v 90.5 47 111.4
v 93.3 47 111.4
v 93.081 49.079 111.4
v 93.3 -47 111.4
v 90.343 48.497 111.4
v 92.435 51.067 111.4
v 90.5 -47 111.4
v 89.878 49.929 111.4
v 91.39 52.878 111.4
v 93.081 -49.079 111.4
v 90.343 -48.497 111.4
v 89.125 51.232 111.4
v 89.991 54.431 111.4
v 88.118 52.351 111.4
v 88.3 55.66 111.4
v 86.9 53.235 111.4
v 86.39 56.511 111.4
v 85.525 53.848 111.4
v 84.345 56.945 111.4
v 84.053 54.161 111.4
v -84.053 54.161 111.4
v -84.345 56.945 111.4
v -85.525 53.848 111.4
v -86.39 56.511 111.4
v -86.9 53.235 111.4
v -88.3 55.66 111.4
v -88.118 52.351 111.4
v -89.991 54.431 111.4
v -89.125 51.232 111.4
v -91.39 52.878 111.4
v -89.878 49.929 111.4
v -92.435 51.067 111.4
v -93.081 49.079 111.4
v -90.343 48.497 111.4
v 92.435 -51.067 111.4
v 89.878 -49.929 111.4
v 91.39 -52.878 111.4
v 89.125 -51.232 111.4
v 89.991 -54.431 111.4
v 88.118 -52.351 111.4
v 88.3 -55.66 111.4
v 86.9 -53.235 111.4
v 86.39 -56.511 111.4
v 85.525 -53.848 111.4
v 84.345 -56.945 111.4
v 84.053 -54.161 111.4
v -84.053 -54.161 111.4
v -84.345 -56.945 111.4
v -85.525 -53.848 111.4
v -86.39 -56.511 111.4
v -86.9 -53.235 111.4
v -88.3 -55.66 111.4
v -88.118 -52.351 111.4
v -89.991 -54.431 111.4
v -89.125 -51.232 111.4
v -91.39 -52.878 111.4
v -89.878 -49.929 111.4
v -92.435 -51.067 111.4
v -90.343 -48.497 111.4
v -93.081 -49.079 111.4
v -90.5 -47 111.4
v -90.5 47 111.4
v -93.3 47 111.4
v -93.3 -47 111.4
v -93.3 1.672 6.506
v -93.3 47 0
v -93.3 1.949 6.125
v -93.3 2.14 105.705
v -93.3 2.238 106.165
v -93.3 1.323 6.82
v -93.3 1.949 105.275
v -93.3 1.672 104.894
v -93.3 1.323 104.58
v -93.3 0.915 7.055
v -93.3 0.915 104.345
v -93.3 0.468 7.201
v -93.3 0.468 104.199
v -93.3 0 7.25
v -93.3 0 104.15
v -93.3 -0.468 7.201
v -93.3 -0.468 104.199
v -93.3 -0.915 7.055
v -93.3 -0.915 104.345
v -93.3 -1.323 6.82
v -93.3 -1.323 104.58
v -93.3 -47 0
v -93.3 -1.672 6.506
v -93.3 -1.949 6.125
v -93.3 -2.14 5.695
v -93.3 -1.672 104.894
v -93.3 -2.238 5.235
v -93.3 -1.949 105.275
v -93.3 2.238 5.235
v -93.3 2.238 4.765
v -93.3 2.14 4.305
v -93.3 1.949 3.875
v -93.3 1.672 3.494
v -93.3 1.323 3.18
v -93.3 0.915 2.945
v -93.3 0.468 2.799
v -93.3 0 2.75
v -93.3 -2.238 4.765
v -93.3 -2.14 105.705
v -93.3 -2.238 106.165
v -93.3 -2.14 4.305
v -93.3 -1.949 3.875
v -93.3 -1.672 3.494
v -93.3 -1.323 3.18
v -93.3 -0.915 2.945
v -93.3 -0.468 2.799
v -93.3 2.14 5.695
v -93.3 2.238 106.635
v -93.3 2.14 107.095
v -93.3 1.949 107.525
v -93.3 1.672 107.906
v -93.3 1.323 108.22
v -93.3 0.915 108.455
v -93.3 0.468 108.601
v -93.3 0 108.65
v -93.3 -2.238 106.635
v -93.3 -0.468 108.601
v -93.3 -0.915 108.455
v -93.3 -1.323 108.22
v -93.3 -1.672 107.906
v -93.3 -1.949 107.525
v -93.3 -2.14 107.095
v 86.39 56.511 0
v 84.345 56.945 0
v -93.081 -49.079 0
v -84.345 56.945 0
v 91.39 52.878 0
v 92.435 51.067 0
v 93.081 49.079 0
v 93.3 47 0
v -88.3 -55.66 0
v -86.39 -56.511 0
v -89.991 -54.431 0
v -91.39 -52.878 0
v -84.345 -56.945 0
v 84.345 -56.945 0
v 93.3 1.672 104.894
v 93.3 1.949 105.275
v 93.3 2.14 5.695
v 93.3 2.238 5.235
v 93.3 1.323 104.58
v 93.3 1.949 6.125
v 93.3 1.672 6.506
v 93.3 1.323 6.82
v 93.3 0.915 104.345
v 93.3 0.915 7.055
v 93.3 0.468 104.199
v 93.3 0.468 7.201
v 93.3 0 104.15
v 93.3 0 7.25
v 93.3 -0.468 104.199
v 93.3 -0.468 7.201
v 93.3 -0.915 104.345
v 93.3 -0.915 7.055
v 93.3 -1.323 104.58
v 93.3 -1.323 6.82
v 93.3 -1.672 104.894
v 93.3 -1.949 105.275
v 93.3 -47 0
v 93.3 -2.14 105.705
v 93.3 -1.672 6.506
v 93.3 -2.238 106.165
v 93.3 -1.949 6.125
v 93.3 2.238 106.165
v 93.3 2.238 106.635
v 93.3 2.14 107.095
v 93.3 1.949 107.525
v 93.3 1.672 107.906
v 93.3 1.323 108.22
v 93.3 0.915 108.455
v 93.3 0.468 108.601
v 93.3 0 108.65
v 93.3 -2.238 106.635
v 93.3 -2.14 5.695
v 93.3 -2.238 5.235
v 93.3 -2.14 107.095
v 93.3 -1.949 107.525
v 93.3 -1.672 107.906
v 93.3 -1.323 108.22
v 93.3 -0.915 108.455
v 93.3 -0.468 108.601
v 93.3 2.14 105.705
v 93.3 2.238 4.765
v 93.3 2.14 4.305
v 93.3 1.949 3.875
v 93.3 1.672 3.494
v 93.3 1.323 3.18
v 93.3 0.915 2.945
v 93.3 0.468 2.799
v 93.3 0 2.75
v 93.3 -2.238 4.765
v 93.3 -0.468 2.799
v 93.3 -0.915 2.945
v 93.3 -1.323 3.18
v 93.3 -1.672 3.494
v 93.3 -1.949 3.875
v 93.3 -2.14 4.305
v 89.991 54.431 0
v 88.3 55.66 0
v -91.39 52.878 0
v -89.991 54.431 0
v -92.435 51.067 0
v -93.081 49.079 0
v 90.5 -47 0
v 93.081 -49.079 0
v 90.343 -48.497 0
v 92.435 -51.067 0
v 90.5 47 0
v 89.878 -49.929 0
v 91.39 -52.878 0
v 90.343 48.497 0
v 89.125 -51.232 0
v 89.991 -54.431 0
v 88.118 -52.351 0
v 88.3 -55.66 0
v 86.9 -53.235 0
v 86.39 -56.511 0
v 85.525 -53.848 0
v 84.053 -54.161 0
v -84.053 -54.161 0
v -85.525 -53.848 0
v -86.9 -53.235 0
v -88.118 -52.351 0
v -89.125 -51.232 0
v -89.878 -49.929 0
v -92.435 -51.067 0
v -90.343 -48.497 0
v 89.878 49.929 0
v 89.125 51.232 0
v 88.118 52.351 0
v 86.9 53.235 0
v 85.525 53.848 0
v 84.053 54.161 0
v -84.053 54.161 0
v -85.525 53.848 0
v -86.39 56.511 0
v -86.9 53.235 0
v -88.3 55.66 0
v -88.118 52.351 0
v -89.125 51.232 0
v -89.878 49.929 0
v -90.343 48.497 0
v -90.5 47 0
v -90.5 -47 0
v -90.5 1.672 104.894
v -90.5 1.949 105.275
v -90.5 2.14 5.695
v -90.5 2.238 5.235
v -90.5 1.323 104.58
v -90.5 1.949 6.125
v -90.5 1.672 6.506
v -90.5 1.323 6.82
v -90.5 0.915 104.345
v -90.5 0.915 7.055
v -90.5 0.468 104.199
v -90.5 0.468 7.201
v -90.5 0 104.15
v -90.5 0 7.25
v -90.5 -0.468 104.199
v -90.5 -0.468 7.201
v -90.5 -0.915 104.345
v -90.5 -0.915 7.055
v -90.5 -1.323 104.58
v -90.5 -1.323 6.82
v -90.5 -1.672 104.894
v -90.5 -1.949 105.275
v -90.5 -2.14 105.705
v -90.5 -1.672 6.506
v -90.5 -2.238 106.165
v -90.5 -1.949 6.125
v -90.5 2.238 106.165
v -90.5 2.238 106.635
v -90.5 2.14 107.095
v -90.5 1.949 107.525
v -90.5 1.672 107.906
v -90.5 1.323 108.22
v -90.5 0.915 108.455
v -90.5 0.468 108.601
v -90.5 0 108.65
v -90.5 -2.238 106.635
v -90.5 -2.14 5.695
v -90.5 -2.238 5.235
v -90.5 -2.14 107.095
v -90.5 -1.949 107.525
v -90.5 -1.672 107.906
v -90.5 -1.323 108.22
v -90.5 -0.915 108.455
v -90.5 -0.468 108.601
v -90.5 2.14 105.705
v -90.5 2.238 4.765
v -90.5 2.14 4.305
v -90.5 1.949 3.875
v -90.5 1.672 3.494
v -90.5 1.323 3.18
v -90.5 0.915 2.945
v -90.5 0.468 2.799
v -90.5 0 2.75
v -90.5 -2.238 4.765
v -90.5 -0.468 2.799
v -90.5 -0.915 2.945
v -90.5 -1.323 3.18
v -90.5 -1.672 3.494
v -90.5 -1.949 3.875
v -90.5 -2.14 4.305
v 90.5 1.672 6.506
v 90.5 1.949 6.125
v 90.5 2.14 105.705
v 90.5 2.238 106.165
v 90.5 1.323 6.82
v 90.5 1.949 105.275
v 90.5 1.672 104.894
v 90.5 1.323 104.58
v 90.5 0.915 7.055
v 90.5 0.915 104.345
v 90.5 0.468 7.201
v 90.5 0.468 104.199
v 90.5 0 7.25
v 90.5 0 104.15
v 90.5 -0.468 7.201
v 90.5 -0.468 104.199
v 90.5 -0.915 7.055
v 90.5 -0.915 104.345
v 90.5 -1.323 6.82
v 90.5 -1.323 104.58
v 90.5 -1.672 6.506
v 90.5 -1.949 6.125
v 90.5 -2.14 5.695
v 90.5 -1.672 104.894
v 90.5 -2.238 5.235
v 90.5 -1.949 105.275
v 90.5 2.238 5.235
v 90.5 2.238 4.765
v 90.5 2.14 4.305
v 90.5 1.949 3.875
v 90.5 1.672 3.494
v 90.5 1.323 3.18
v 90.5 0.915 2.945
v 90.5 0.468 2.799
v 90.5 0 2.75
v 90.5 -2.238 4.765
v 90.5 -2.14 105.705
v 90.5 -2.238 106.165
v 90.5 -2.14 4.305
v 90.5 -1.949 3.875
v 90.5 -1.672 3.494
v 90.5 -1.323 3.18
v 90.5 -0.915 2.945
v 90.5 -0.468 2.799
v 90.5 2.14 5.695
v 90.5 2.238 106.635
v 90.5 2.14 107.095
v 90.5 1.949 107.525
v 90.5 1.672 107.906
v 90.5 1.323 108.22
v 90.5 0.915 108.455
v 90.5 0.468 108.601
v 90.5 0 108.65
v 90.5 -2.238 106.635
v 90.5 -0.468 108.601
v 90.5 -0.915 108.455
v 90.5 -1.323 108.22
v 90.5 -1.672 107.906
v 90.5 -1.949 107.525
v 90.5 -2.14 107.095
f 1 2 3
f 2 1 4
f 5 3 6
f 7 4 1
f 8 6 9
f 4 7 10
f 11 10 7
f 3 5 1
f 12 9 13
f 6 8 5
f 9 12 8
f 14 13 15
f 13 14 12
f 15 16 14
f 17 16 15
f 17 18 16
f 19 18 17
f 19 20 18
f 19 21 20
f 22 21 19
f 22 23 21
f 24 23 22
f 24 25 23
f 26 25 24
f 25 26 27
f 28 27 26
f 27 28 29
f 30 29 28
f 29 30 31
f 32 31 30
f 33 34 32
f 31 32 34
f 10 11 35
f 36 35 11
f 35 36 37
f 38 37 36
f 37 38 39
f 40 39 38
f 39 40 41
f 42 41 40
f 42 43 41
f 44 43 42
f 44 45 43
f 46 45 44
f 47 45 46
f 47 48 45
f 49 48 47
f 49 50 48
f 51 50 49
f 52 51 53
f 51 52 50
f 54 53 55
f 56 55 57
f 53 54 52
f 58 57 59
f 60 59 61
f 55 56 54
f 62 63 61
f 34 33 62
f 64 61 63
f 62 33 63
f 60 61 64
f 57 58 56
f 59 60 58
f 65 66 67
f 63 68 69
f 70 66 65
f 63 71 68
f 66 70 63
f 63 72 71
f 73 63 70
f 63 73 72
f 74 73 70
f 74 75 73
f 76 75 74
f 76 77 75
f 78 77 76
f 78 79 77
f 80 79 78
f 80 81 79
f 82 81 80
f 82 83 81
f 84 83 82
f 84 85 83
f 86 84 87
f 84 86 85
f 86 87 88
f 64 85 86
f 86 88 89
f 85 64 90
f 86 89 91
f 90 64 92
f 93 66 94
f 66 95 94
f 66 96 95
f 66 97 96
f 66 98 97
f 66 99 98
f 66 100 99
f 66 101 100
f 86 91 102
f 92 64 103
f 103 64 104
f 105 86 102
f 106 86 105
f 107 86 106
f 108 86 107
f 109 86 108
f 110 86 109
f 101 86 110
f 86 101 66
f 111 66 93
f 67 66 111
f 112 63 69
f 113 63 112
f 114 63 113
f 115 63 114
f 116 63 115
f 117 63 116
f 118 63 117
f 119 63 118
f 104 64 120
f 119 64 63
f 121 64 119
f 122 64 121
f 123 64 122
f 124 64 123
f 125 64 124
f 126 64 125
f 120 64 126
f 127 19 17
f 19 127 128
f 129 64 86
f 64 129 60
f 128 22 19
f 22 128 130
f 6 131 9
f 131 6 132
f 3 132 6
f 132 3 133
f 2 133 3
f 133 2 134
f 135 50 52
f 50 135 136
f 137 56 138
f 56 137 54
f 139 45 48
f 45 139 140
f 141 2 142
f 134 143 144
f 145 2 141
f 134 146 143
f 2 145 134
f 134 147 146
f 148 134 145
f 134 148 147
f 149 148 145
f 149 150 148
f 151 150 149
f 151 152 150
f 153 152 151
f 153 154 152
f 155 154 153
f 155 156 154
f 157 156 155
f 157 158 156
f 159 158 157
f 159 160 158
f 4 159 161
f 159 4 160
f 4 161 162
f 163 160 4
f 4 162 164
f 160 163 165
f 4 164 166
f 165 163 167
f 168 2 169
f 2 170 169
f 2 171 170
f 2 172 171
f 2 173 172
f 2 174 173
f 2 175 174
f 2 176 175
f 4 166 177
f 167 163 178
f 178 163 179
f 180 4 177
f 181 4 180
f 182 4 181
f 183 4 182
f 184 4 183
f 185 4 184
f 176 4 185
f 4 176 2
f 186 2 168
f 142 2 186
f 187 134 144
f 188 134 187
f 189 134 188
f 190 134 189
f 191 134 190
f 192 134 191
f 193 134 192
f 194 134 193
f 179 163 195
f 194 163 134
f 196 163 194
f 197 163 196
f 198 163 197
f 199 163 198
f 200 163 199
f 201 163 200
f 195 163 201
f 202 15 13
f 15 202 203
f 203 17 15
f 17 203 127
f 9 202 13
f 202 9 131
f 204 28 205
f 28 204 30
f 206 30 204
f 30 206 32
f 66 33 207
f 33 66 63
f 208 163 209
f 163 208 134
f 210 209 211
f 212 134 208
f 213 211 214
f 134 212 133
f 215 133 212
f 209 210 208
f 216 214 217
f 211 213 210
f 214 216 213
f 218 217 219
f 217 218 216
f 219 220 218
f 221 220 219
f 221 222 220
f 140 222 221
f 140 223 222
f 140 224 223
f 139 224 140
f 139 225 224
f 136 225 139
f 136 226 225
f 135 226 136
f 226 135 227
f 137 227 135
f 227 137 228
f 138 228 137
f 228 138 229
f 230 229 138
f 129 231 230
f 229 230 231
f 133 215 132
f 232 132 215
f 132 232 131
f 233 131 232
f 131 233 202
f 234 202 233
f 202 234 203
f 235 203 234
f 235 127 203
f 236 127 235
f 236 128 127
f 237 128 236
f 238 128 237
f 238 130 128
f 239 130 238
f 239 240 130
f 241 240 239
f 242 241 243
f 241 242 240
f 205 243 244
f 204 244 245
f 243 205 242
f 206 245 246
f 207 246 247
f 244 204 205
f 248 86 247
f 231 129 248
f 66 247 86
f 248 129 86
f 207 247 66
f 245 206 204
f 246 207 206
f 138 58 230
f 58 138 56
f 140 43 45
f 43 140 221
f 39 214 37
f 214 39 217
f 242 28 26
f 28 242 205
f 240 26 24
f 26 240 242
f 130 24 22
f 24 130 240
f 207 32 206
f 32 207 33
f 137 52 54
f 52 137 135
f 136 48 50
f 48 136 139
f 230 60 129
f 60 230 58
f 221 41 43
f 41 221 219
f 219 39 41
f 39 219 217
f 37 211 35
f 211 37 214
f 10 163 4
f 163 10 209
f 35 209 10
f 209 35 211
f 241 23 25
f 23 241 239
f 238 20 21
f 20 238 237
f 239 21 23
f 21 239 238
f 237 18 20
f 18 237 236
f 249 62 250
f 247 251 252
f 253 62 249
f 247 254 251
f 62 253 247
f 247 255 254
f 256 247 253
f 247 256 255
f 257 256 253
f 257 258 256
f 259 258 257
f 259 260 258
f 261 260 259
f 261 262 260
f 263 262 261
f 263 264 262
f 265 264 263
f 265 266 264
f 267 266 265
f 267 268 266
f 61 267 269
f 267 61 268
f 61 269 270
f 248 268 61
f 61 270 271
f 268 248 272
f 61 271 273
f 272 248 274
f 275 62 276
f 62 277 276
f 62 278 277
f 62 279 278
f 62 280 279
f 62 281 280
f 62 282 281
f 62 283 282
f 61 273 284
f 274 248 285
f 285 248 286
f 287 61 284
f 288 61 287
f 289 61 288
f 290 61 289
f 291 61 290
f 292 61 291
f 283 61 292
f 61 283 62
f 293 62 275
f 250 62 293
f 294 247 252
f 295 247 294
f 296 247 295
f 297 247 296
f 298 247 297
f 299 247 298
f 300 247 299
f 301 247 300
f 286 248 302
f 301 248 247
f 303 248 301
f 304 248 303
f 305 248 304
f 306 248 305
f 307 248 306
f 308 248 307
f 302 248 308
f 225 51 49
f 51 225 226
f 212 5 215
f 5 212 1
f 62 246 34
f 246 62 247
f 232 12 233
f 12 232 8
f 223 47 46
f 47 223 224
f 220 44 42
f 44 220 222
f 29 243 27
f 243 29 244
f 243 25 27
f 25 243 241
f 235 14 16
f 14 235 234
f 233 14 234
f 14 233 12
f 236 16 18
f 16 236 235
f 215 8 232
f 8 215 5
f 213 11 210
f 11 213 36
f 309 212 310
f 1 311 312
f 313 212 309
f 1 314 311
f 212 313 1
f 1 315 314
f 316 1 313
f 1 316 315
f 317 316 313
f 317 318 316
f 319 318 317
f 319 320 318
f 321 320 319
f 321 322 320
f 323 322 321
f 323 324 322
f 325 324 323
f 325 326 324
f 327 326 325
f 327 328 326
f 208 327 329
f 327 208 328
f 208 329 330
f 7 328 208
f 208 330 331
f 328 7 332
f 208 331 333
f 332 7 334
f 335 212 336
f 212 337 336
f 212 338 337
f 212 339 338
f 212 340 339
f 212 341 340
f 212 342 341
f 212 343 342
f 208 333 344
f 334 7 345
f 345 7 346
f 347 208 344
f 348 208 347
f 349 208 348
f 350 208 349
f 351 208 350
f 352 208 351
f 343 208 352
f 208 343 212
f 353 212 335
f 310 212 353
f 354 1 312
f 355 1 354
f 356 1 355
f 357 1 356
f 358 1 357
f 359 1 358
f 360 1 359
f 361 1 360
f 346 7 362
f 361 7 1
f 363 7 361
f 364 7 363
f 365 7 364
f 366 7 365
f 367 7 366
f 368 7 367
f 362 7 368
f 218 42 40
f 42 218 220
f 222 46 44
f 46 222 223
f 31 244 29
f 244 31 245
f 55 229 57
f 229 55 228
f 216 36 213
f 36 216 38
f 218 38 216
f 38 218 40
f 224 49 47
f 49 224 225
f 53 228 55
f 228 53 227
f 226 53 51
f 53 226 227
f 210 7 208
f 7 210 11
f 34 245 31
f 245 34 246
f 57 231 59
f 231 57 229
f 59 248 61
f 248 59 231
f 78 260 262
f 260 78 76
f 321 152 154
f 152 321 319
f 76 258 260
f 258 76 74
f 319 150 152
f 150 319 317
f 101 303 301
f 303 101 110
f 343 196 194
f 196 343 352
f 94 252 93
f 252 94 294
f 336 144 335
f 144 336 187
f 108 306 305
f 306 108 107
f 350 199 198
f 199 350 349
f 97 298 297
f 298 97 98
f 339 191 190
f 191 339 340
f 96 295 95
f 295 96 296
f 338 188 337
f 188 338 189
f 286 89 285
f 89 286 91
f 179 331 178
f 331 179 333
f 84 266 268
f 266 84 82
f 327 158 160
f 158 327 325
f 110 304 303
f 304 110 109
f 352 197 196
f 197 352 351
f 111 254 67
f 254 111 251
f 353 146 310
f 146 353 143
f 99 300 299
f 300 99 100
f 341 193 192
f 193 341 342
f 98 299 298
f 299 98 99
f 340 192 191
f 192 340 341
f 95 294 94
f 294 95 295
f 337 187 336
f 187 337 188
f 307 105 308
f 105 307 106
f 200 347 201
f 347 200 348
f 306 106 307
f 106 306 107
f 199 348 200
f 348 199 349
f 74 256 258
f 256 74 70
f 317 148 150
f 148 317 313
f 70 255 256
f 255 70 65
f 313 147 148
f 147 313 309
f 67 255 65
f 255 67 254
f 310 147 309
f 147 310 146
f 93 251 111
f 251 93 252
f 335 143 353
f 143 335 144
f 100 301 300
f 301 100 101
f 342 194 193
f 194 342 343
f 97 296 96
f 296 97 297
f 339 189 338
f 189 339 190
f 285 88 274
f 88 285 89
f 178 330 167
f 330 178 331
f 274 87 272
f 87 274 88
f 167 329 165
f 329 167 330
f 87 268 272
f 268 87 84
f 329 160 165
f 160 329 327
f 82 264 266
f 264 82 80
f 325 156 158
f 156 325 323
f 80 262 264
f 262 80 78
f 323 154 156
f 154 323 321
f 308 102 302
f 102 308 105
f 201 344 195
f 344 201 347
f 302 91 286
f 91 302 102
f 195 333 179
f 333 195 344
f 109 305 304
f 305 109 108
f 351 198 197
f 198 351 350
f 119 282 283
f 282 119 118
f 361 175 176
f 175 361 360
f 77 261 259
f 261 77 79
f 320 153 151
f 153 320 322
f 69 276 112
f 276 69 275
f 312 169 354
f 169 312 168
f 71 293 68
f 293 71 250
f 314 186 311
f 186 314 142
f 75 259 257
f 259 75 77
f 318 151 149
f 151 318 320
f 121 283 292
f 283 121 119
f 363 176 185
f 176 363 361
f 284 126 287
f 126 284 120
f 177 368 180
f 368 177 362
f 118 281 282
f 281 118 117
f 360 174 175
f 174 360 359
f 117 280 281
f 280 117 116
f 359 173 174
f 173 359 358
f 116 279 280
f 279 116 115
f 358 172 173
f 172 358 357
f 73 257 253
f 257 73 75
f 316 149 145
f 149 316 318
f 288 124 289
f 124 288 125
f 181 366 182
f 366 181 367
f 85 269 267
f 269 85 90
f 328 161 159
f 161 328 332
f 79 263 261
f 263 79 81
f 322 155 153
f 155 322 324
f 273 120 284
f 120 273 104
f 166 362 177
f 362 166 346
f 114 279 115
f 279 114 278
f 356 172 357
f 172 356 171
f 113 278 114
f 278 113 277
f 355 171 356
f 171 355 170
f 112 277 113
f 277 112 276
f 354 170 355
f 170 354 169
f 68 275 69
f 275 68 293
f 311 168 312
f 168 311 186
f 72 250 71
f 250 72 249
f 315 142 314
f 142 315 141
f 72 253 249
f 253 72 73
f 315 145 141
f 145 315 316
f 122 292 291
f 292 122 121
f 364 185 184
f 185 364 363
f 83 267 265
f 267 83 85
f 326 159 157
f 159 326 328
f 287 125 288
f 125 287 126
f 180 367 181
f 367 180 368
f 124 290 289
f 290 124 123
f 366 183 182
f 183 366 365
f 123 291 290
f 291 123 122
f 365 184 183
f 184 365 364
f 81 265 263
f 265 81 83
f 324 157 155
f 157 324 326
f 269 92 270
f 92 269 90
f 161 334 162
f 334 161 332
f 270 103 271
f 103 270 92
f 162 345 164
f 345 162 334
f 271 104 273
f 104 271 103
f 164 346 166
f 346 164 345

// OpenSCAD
// file: DMM_Front_Block.scad
include <BoxCommon.scad>;
$fs=.01;
// This is going to look upside down because of
// coordinate system for the board is from the front.
// Whereas this view is from the back. Its all
// flipped on the x axis.


BlockSZ=[10,20,6+9]; //  Of the board holders
Front_Shift=[0,-CPU_Board_Loc.y-4,0];  // Center of DMM board 
DMM_HolderSZ=[100,23,6+9];

// Locate the clamp elements:
DMM_ClampScrewOffset=(DMM_HolderSZ.x+DMM_BOARD_X)/4;
ClampHole=5;

// Use these modules with the same translate parameters
module DMM_Front_U()
{  

    
   translate([5,-BlockSZ.y/2,BlockSZ.z/2]) cube(BlockSZ,center=true);
   translate([-25,-BlockSZ.y/2,BlockSZ.z/2]) cube(BlockSZ,center=true);
   
   translate([0,-7,DMM_HolderSZ.z/2] + Front_Shift) cube(DMM_HolderSZ,center=true);
}
module DMM_Front_D()
{
    translate(Front_Shift)
    {
       for (bl=boards) 
        {
                   // The board is centered on 0,0 and 7 above z
        #translate(bl+[-DMM_BOARD_X/2,-DMM_BOARD_Y/2,7])

            cube([DMM_BOARD_X, DMM_BOARD_Y,10]);
 
        }
        for (x=DMM_JAX_X)
        {
            translate([x,-DMM_JAX_Y,-.01])
                cylinder(h=20,d=DMM_JAX_LOWER_DIA);
            translate([x,-DMM_JAX_Y,DMM_JAX_Z_OFFS])
                cylinder(h=20,d=DMM_JAX_UPPER_DIA);
        }
        #translate([DMM_ClampScrewOffset,-DMM_JAX_Y,BlockSZ.z/2]) cylinder(h=20,d=ClampHole,center=false);
        #translate([-DMM_ClampScrewOffset,-DMM_JAX_Y,BlockSZ.z/2]) cylinder(h=20,d=ClampHole,center=false);
    }

    
}
*difference()
{
    union(){
        cylinder(r=1,h=50);
        DMM_Front_U();
    }
    DMM_Front_D();
}


Panel2ShoulderZ=44.5;
Panel2BlockTopZ=Panel2ShoulderZ+5;
Panel2TopInsulatorZ=22;
Panel2TopConnectorZ=28;
ConnectorDia=6.6;
BridgeThk=2;


HZ2=Panel2ShoulderZ-DMM_HolderSZ.z;
HZ1=Panel2BlockTopZ-DMM_HolderSZ.z;
HZ4=Panel2TopInsulatorZ-DMM_HolderSZ.z;
HZ3=Panel2TopConnectorZ-DMM_HolderSZ.z;

echo("HZ1-4",HZ1,HZ2,HZ3,HZ4);
echo("HZ1-4+",HZ1+DMM_HolderSZ.z,HZ2+DMM_HolderSZ.z,HZ3+DMM_HolderSZ.z,HZ4+DMM_HolderSZ.z);

BOARD_Neck=53.5;
BOARD_TAIL_X=63.5;


HX=DMM_HolderSZ.x;
HY=DMM_HolderSZ.y;
HZ=HZ1;

boardSlot=[BOARD_Neck,50,30];



module clamp()
{
   difference()
   {
      translate([0,-7,HZ/2] )
      {
          cube([HX,HY,HZ],center=true); // Main body
      }
       // Slot for board neck
      translate([0,3,HZ1/2])
            cube([BOARD_Neck,10,HZ1+0.1],center=true);
      translate([0,3,HZ2/2])
            cube([BOARD_TAIL_X,12,HZ2],center=true);
 // Make a slot for the components on top of the board;.
        translate([0,0,boardSlot.z/2+HZ3+BridgeThk]) cube(boardSlot,center=true);
        for (x=DMM_JAX_X)
        {
            // Lower slots
             translate([x,-DMM_JAX_Y,-.01])
                cylinder(h=HZ4,d=DMM_JAX_UPPER_DIA);
             translate([x-DMM_JAX_UPPER_DIA/2,-DMM_JAX_Y,0])
                 cube([DMM_JAX_UPPER_DIA,20,HZ4]) ;
            // Upper slots
             translate([x,-DMM_JAX_Y,-.01])
                cylinder(h=HZ3,d=ConnectorDia,center=false);
             translate([x-ConnectorDia/2,-DMM_JAX_Y,0])
                 cube([ConnectorDia,20,HZ3],center=false) ;
        }
        
        // The clamp screws
        #translate([DMM_ClampScrewOffset,-DMM_JAX_Y,0])  cylinder(h=HZ1+1,d=ClampHole,center=false);
        #translate([-DMM_ClampScrewOffset,-DMM_JAX_Y,0]) cylinder(h=HZ1+1,d=ClampHole,center=false);

 
   }
}

//color([.8,.8,1,1]) translate([0,0,0]) clamp();
// file: Bezel.scad
// Draw a window in a panel with an angled opening.
// The passed size is the back/inside opening.
// The front of the hole will be grown according to the
// trig calculation and the thickness.
// A suggested thickness is 3.5-4mm

// Place this in a difference() block with other holes in the 
// panel.
// Translate as needed.  Include a small -z to clean up the hole
// in the rendering.
module Bezel(size)
{
    
    bx=size.x;  // Size of the cutout
    by=size.y;
    bz=size.z; // Thk at bezel
    bang=60;  // Angle at the bezel
    be=bz/tan(bang);

    
    
    bp=[[-bx/2-be,-by/2-be,0],[-bx/2-be,by/2+be,0],
        [bx/2+be,by/2+be,0],[bx/2+be,-by/2-be,0],
        [-bx/2,-by/2,bz],[-bx/2,by/2,bz],
        [bx/2,by/2,bz],[bx/2,-by/2,bz]];
    
    bf=[[3,2,1,0],[4,5,6,7],[0,4,7,3],[5,1,2,6],[0,1,5,4],[3,7,6,2]];   
    
    
    polyhedron(bp,bf,3);

}

module BezelTest()
{
    // the opening should be slightly thicker and lower
    // than the surrounding panel for the display.
    panel=[100,50,4];
    opening=[80,40,4.01];
    
    difference()
    {
        translate([0,0, panel.z/2])
            cube(panel,center=true);
        translate([0,0,-.005])
            Bezel(opening);
    }
}

BezelTest();
// file: MK_Panel.scad
// Pull this file in with use<>

include <BoxCommon.scad>



// innerPanel => the size of the panel at the origin of
// the outer radii

// panel=> the x/y/z size of the panel extents
// lip => z of lip above the panel
// RO,RL,RI => the outer most, middle, and inner most radius

module dressPanel(panel,lipHt, RO,RL,RI)
{
    innerPanel=[panel.x-RO*2, panel.y-RO*2,panel.z-1];
    
    // Virtually center the panel on the origin
    translate([-innerPanel.x/2,-innerPanel.y/2,0])
    {
        minkowski()
        {
            cube(innerPanel,center=false);
            cylinder(r=RO,h=1);
        }

        translate([0,0,panel.z])
        {
            difference()
            {
                minkowski()
                {
                    cube(innerPanel,center=false);
                    cylinder(r=RL,h=lipHt);
                }
                minkowski()
                {
                    cube(innerPanel,center=false);
                    cylinder(r=RI,h=lipHt+1);
                }
            }
        }
    }
}

module outerShell(panel, RO,RL)
{
    ht2=panel.z/2;
    innerPanel=[panel.x-RO*2, panel.y-RO*2,ht2];
    
    // Virtually center the panel on the origin
    translate([-innerPanel.x/2,-innerPanel.y/2,0])
    {

        difference()
        {
            minkowski()
            {
                cube(innerPanel,center=false);
                cylinder(r=RO,h=ht2);
            }
            translate([0,0,-.5])
            minkowski()
            {
                cube(innerPanel,center=false);
                cylinder(r=RL,h=ht2+1);
            }
        }
    }
}

module testDressPanel()
{   
    R=15;
    
    difference()
    {
        dressPanel([60,40,4],6,R,R-3,R-6);
        cube([100,100,20]);
    }
}

module testOuterShell()
{

R=15;
    
    difference()
    {
        outerShell([60,40,20],R,R-2);
        cube([100,100,20]);
    }
}
//testDressPanel();
testOuterShell();
// file: BoxCommon.scad
// Sum array members:
function suma(array,start,end) =
    (start==end)
    ? array[start]
    : suma(array, start+1, end) + array[start];
function e(clear,o) =// Add clear to demensions of o
     (is_list(clear)) ?
        [o.x+clear.x,o.y+clear.y,o.z+clear.z] :
        [o.x+clear,o.y+clear,o.z+clear];

function align(mode,here,center=true)=
    [ search(mode,"eErR")?here.x:(search(mode,"wWlL")?0:here.x/2),
    search(mode,"nN")?here.y:(search(mode,"sS")?0:here.y/2),
    search(mode,"tT")?here.z:(search(mode,"bB")?0:here.z/2)]-
    (center?[here.x/2,here.y/2, here.z/2]:[0,0,0]);


module cubeXY(cc)
{
    translate([-cc.x/2,-cc.y/2, 0]) cube(cc,center=false);
}


// The size of the block that holds the display. Determines width.
DISPBLOCK=[16+50.2*3,44,15]; // Z is arbitrary at the moment

// The real size of the front panel
panelDim=[DISPBLOCK.x,DISPBLOCK.y,0]+[20,70,3.2];
lipHt=10;
outsideR=10;

// FF=Fudge Factor

DMM_BOARD_X=66 ; // 63 NO FF FROM DRAWING
DMM_BOARD_Y=3 ; // 1.6 NO FF Measured
//DMM_Center=[50,-20,0];
CPU_BOARD_X=54;
CPU_BOARD_Y=3;
CPU_BOARD_Z=102;


// Extra board locations relative to the DMM board:
CPU_Board_Loc=[0,27,6];  // Not using full width of the board
// loc is offset left to miss drilling the screw block.
IF_Board_Loc=[0,15,6];
boards=[[0,0,0],IF_Board_Loc,CPU_Board_Loc];


S_VO_OFFS=-19.08; // From drawing
S_Widths=14; // FROM Drawing
// Places 5A jack at edge of board.:
S_FUDGE=DMM_BOARD_X/2-S_Widths*2-2; 
S1=-S_Widths/2+S_FUDGE;
S0=S_VO_OFFS+S1;
S2=S_Widths/2+S_FUDGE; 
S3=S2+S_Widths;
DMM_JAX_X=[S0,S1,S2,S3];

// STack up to C/L of jack in Y - Measured terms
DMM_JAX_Y=DMM_BOARD_Y/2+4.9+5.5/2; 
DMM_JAX_LOWER_DIA=12; // Measured
DMM_JAX_UPPER_DIA=15; // Same as S_Widths
DMM_JAX_Z_OFFS=3.3 ; // How much of the lower shoulder shows.

for (i=[DMM_JAX_X])
    echo(i);
echo(DMM_JAX_Y);
// main file
include <BoxCommon.scad>
use <MK_Panel.scad>
use <Bezel.scad>
use <DMM_Front_Block.scad>


h=114.6-3.2;  // Measure!!!!

$fs=.025;

difference()
{
    // minkowski adds the box and cylinder heights.
    outerShell(panelDim-[0,0,panelDim.z]+[0,0,h], outsideR,outsideR-2.8);
    #translate([0,0,lipHt/2]) rotate([0,-90,0]) cylinder(h=panelDim.x+10,d=4.5,center=true);
    #translate([0,0,h-lipHt/2]) rotate([0,-90,0]) cylinder(h=panelDim.x+10,d=4.5,center=true);
}
